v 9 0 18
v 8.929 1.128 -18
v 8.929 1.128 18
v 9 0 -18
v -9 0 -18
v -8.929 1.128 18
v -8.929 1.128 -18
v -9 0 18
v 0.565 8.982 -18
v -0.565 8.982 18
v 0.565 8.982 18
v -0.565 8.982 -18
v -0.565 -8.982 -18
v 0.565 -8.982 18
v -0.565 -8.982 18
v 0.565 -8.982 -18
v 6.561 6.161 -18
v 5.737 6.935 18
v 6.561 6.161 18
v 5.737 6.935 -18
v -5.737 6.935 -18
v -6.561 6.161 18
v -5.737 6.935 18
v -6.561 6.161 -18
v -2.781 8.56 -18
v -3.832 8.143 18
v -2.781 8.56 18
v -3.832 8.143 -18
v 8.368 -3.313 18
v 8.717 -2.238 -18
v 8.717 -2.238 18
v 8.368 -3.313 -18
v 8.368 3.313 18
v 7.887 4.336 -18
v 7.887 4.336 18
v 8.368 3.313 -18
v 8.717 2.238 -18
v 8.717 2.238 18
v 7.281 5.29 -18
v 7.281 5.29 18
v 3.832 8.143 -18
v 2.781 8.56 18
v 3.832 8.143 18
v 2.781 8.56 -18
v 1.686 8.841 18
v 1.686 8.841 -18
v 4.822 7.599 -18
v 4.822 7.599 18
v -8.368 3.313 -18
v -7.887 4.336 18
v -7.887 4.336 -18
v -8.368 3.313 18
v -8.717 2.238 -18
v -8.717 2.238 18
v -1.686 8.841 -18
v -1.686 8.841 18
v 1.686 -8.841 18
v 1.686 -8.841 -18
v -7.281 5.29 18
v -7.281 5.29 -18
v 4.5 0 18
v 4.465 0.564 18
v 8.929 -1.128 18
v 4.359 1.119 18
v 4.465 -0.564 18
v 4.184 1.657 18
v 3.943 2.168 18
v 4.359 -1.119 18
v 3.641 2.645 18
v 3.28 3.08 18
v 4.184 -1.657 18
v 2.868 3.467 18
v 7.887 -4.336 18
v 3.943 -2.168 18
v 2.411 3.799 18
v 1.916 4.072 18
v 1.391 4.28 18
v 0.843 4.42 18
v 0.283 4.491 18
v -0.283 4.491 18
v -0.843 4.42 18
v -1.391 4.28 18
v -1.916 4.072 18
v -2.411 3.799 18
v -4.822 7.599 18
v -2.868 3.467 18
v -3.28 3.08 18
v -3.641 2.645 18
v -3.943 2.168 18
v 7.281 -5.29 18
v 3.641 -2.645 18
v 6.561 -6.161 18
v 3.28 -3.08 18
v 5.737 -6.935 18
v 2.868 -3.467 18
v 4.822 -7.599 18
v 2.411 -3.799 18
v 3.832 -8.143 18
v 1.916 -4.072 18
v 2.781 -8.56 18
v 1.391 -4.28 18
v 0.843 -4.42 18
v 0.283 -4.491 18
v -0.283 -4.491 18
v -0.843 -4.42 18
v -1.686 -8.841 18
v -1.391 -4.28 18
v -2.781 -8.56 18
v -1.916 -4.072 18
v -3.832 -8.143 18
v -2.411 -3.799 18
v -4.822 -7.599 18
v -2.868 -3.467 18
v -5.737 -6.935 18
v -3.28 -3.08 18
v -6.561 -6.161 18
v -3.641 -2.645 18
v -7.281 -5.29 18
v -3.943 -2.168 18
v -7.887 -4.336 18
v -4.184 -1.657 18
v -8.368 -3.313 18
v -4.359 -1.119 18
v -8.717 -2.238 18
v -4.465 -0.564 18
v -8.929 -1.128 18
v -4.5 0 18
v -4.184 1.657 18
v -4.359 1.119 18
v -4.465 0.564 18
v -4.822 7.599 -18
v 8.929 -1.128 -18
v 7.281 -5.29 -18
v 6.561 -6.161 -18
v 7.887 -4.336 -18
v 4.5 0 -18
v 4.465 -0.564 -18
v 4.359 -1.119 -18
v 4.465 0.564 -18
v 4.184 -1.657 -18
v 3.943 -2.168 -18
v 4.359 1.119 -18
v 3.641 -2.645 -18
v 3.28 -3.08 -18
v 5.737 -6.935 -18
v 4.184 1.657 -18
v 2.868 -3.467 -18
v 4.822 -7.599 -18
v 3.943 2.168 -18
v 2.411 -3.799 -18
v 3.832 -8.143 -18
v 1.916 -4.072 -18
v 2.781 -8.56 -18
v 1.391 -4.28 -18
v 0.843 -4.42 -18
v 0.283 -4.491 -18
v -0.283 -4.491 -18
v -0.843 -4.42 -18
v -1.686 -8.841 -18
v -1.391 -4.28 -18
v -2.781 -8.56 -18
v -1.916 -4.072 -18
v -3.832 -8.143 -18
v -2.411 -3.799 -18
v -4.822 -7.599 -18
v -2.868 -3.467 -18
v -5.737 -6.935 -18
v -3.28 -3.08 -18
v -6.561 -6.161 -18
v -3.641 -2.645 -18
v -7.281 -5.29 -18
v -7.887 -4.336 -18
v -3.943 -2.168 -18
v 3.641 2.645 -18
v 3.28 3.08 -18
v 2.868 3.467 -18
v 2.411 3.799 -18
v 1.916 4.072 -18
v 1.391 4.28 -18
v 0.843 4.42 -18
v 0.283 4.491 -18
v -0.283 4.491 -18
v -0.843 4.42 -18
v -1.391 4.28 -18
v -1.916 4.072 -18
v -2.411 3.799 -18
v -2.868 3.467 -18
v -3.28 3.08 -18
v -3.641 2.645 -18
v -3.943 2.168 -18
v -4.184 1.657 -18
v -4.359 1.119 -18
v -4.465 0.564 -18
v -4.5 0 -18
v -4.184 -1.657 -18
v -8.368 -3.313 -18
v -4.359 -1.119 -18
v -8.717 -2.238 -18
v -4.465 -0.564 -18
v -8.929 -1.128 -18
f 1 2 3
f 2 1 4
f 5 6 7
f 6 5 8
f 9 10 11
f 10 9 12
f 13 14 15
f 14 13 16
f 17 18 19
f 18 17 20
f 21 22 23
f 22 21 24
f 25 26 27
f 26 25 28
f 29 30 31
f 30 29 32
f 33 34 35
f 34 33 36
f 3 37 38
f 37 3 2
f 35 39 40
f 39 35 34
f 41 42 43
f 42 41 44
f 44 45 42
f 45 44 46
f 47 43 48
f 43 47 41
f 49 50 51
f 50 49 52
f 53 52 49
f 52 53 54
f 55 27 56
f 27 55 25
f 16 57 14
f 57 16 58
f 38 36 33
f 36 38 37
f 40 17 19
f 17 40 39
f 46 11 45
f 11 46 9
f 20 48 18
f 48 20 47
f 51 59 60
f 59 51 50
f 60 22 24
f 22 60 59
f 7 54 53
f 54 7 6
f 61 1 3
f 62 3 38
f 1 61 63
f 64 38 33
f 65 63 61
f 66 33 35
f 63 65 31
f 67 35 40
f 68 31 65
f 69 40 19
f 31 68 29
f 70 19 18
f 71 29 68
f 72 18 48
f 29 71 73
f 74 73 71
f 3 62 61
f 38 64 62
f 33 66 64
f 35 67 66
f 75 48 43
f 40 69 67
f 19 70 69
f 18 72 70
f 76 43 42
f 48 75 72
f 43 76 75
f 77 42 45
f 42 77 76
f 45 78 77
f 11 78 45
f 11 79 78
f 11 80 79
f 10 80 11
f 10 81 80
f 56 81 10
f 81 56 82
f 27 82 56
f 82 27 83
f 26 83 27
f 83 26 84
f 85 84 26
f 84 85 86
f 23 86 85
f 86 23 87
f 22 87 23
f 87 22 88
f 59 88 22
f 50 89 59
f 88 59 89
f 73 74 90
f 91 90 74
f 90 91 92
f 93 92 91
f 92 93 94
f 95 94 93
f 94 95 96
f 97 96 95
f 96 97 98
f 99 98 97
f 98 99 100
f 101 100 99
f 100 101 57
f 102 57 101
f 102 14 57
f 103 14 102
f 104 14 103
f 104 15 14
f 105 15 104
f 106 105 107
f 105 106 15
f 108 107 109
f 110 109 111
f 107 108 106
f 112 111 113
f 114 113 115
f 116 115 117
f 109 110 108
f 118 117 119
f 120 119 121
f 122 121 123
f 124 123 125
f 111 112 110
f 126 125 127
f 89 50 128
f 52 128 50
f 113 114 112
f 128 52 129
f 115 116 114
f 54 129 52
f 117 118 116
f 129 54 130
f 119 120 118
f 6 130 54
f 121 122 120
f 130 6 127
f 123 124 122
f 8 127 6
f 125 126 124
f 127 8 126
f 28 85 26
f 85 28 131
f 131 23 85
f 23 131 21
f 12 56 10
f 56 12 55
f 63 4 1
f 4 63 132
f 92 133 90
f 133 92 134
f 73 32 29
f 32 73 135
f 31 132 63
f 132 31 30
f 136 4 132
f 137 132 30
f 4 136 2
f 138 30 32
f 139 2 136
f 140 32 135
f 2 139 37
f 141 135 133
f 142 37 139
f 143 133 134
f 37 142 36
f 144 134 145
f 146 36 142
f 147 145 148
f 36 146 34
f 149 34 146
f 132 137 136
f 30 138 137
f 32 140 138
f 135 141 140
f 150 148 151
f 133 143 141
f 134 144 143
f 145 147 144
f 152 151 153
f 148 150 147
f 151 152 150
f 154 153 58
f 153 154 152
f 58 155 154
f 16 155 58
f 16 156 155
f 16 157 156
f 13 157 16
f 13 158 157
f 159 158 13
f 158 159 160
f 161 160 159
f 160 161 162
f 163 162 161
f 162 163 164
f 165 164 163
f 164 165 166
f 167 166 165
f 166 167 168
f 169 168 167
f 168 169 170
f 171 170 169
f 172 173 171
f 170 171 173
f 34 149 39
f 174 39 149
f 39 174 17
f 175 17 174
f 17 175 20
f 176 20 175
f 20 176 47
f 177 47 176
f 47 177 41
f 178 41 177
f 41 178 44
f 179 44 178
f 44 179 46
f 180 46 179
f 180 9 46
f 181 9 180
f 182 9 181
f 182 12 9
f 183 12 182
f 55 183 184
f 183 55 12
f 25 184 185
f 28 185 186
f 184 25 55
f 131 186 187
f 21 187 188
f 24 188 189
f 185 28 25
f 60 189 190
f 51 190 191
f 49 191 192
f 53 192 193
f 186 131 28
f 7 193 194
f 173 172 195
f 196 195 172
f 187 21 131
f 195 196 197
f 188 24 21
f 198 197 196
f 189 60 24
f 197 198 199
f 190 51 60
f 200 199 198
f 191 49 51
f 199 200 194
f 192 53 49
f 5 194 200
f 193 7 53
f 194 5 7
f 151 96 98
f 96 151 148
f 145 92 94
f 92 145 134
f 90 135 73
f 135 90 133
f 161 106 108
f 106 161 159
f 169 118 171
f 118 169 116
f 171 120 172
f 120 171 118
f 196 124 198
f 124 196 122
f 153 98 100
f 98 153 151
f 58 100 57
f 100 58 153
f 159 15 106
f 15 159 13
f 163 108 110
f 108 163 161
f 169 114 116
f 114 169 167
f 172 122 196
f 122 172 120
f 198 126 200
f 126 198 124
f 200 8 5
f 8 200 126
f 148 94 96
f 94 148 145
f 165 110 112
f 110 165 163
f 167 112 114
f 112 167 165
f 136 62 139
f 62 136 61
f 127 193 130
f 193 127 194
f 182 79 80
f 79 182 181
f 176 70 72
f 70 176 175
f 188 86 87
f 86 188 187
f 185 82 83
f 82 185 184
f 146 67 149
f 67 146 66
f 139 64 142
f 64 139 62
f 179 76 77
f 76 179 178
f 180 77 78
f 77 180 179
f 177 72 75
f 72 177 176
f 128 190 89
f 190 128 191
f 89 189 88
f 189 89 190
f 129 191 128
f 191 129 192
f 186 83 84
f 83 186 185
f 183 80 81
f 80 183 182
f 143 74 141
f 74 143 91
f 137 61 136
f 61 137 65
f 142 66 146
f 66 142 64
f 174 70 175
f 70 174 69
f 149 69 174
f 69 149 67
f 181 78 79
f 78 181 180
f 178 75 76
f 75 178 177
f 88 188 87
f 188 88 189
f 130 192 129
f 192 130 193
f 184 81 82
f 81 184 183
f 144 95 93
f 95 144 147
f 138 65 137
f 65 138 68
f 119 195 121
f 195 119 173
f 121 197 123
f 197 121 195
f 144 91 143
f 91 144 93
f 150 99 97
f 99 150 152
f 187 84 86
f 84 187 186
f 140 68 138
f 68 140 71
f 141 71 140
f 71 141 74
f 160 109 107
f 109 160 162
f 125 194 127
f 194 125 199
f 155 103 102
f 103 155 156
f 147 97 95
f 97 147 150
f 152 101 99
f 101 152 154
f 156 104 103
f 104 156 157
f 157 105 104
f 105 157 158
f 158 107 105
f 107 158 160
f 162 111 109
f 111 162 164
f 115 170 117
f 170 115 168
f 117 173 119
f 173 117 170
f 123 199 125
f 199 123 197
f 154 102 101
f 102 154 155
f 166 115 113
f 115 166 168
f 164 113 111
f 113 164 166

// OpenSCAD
$fn = 50;


difference() {
	union() {
		translate(v = [0, 0, -18.0000000000]) {
			cylinder(h = 36, r = 9.0000000000);
		}
	}
	union() {
		translate(v = [0, 0, -100.0000000000]) {
			cylinder(h = 200, r = 4.5000000000);
		}
	}
}
